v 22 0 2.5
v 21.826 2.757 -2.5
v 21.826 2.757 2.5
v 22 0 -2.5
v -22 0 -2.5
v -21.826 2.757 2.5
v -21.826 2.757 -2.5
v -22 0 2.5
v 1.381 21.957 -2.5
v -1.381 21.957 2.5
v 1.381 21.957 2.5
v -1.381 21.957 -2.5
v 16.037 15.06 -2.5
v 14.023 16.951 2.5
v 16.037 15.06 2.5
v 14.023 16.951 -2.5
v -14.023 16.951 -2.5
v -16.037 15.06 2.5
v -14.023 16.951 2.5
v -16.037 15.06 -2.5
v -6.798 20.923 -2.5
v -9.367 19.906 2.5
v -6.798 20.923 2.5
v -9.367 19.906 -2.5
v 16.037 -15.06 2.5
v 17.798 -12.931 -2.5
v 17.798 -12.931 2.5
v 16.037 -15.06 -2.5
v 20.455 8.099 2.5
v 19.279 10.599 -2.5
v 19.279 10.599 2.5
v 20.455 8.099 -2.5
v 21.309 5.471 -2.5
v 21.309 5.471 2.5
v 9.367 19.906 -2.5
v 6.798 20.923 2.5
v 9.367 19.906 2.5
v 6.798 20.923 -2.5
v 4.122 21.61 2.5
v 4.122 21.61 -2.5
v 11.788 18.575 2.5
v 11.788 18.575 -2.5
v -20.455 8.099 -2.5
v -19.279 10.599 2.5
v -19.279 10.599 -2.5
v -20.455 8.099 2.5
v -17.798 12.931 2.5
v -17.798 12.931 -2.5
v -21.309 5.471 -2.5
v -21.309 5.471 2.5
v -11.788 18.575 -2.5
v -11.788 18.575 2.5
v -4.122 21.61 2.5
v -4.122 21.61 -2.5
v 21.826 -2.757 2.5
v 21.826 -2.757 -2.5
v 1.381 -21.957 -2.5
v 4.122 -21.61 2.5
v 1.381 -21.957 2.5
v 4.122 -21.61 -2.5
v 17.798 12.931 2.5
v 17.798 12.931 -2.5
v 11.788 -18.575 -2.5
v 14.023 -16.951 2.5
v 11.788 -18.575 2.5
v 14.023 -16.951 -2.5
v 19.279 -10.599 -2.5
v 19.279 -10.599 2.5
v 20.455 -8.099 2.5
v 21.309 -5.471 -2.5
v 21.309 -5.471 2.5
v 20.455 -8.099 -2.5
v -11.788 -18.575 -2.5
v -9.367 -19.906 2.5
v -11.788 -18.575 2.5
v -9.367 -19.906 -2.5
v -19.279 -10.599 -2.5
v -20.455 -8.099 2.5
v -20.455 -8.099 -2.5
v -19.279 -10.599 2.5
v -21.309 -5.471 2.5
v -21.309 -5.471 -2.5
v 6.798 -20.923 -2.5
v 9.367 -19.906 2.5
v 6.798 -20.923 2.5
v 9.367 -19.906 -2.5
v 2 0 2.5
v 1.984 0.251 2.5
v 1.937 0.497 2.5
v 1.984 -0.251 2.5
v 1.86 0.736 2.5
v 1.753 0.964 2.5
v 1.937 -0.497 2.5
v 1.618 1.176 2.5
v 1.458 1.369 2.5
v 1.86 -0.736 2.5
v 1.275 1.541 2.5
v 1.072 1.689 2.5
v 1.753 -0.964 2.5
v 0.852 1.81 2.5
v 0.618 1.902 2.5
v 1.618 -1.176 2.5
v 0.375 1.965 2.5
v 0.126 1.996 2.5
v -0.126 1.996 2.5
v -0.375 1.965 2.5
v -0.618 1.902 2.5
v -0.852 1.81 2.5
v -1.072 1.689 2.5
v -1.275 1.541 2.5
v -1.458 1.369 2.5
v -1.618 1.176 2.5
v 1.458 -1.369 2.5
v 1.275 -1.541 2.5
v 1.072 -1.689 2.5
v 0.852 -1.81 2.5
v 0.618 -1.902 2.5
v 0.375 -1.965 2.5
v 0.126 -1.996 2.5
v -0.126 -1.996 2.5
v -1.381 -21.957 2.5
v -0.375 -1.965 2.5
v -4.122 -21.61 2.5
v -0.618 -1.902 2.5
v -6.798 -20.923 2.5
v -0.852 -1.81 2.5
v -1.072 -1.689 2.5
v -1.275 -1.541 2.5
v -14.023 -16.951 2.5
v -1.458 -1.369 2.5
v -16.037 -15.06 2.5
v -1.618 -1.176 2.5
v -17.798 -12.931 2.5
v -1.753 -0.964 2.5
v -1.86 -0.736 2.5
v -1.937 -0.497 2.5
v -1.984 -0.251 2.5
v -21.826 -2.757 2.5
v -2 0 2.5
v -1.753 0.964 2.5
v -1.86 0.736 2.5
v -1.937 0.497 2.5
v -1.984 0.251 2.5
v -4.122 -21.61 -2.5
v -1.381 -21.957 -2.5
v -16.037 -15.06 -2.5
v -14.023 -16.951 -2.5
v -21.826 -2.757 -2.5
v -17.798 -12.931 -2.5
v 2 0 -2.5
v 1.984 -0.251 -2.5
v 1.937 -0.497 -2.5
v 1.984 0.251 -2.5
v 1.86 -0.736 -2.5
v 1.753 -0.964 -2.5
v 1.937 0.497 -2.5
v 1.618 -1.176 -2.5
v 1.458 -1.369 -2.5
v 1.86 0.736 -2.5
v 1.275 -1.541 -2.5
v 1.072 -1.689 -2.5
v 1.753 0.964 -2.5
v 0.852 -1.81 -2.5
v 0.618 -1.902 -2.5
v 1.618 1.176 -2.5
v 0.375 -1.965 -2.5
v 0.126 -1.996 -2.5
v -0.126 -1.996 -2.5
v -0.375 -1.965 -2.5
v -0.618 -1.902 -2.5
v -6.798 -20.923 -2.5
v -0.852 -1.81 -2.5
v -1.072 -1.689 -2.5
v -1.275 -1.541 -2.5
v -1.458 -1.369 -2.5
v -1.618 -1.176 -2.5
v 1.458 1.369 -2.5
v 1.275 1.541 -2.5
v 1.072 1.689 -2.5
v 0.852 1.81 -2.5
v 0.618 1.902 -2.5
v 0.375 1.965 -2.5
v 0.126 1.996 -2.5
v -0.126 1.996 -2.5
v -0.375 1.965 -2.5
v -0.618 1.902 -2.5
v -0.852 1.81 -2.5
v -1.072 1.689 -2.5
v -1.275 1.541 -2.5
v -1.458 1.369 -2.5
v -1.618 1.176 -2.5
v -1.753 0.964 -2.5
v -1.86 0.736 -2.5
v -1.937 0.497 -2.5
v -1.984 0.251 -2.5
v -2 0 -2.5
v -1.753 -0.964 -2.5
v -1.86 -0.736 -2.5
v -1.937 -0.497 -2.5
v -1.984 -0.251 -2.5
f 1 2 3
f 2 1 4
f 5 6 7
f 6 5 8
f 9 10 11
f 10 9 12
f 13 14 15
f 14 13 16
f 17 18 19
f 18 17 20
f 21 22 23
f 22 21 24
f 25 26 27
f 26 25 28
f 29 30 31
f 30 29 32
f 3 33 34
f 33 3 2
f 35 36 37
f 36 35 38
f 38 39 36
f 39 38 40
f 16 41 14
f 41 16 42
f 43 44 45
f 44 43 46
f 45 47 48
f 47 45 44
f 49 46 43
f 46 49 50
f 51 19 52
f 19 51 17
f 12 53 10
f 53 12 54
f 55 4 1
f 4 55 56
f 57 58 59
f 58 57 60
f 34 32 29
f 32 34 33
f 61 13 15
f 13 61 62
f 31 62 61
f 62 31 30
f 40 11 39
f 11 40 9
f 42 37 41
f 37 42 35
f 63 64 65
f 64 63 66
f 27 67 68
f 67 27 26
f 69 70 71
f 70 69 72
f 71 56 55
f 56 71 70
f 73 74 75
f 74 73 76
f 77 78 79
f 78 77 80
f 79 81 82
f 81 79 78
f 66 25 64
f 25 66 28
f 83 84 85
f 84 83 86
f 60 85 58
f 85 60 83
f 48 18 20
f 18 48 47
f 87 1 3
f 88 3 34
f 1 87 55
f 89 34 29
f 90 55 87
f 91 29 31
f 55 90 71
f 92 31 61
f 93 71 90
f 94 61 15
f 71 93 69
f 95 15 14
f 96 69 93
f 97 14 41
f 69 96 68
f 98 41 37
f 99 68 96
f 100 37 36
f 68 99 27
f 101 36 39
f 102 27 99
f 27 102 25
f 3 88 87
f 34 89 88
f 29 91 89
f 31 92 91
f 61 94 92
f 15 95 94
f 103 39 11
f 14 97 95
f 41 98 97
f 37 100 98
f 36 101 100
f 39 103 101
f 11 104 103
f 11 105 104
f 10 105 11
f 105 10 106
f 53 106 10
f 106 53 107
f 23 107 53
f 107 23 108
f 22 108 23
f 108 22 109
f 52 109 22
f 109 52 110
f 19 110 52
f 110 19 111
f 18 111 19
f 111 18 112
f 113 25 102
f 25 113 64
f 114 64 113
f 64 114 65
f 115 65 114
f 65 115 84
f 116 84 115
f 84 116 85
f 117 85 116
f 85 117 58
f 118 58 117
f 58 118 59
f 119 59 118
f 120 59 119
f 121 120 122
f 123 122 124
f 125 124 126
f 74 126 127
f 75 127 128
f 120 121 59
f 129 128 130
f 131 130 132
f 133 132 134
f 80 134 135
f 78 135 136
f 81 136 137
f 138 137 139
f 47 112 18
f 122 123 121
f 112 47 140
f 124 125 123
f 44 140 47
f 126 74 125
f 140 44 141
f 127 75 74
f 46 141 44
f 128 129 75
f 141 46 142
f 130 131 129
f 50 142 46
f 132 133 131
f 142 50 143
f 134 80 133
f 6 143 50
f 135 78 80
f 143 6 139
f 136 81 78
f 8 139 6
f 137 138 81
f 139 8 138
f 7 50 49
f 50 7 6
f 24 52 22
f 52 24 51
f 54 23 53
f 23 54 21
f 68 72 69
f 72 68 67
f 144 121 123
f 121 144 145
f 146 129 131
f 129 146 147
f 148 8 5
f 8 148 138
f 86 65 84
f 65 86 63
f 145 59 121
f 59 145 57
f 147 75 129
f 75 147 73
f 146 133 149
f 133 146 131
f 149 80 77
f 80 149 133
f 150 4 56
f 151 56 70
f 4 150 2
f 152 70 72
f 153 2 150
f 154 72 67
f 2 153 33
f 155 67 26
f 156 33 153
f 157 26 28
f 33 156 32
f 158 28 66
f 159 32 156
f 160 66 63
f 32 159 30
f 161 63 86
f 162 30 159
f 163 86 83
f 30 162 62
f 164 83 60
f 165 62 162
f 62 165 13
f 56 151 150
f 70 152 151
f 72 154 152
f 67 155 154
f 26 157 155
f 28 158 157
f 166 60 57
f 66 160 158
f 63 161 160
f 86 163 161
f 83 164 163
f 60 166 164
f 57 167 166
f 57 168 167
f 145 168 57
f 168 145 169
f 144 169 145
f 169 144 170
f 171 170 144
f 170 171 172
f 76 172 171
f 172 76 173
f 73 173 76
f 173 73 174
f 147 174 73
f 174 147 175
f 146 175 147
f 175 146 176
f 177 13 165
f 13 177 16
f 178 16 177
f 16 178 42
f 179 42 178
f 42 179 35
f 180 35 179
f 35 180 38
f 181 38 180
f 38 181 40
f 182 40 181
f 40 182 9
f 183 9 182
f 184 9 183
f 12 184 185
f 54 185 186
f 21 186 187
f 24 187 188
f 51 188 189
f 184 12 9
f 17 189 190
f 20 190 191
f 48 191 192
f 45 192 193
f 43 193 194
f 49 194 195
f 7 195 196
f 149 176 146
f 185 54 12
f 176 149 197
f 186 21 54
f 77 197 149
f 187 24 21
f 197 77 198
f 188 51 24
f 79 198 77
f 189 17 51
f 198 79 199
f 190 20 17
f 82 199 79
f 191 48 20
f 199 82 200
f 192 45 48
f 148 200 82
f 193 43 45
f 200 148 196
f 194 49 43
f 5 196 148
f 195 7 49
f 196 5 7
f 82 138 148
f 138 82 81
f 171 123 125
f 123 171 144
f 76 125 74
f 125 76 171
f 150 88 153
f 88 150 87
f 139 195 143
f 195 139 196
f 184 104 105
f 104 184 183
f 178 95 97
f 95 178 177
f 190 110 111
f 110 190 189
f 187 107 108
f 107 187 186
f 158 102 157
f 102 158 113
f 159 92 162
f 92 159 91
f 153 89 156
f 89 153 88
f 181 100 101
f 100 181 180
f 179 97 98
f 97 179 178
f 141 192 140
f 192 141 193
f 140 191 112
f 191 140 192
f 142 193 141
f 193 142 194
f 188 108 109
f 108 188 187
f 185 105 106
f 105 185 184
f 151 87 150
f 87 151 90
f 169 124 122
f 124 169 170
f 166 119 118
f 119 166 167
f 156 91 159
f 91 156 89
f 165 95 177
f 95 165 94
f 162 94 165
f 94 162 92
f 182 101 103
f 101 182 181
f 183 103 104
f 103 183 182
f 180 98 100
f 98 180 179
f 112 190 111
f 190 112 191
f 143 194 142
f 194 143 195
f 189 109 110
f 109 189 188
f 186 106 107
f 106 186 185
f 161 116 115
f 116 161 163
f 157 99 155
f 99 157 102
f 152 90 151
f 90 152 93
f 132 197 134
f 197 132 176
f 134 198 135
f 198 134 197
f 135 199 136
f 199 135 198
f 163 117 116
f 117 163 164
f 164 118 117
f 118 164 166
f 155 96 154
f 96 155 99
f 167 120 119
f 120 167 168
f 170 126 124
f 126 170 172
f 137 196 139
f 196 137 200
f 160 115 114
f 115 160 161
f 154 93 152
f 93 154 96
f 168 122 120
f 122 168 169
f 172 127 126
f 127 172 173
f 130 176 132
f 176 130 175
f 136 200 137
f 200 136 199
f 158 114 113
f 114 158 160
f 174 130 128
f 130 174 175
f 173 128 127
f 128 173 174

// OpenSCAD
$fn = 50;


difference() {
	union() {
		translate(v = [0, 0, -2.5000000000]) {
			cylinder(h = 5, r = 22.0000000000);
		}
	}
	union() {
		translate(v = [0, 0, -100.0000000000]) {
			cylinder(h = 200, r = 2.0000000000);
		}
	}
}
